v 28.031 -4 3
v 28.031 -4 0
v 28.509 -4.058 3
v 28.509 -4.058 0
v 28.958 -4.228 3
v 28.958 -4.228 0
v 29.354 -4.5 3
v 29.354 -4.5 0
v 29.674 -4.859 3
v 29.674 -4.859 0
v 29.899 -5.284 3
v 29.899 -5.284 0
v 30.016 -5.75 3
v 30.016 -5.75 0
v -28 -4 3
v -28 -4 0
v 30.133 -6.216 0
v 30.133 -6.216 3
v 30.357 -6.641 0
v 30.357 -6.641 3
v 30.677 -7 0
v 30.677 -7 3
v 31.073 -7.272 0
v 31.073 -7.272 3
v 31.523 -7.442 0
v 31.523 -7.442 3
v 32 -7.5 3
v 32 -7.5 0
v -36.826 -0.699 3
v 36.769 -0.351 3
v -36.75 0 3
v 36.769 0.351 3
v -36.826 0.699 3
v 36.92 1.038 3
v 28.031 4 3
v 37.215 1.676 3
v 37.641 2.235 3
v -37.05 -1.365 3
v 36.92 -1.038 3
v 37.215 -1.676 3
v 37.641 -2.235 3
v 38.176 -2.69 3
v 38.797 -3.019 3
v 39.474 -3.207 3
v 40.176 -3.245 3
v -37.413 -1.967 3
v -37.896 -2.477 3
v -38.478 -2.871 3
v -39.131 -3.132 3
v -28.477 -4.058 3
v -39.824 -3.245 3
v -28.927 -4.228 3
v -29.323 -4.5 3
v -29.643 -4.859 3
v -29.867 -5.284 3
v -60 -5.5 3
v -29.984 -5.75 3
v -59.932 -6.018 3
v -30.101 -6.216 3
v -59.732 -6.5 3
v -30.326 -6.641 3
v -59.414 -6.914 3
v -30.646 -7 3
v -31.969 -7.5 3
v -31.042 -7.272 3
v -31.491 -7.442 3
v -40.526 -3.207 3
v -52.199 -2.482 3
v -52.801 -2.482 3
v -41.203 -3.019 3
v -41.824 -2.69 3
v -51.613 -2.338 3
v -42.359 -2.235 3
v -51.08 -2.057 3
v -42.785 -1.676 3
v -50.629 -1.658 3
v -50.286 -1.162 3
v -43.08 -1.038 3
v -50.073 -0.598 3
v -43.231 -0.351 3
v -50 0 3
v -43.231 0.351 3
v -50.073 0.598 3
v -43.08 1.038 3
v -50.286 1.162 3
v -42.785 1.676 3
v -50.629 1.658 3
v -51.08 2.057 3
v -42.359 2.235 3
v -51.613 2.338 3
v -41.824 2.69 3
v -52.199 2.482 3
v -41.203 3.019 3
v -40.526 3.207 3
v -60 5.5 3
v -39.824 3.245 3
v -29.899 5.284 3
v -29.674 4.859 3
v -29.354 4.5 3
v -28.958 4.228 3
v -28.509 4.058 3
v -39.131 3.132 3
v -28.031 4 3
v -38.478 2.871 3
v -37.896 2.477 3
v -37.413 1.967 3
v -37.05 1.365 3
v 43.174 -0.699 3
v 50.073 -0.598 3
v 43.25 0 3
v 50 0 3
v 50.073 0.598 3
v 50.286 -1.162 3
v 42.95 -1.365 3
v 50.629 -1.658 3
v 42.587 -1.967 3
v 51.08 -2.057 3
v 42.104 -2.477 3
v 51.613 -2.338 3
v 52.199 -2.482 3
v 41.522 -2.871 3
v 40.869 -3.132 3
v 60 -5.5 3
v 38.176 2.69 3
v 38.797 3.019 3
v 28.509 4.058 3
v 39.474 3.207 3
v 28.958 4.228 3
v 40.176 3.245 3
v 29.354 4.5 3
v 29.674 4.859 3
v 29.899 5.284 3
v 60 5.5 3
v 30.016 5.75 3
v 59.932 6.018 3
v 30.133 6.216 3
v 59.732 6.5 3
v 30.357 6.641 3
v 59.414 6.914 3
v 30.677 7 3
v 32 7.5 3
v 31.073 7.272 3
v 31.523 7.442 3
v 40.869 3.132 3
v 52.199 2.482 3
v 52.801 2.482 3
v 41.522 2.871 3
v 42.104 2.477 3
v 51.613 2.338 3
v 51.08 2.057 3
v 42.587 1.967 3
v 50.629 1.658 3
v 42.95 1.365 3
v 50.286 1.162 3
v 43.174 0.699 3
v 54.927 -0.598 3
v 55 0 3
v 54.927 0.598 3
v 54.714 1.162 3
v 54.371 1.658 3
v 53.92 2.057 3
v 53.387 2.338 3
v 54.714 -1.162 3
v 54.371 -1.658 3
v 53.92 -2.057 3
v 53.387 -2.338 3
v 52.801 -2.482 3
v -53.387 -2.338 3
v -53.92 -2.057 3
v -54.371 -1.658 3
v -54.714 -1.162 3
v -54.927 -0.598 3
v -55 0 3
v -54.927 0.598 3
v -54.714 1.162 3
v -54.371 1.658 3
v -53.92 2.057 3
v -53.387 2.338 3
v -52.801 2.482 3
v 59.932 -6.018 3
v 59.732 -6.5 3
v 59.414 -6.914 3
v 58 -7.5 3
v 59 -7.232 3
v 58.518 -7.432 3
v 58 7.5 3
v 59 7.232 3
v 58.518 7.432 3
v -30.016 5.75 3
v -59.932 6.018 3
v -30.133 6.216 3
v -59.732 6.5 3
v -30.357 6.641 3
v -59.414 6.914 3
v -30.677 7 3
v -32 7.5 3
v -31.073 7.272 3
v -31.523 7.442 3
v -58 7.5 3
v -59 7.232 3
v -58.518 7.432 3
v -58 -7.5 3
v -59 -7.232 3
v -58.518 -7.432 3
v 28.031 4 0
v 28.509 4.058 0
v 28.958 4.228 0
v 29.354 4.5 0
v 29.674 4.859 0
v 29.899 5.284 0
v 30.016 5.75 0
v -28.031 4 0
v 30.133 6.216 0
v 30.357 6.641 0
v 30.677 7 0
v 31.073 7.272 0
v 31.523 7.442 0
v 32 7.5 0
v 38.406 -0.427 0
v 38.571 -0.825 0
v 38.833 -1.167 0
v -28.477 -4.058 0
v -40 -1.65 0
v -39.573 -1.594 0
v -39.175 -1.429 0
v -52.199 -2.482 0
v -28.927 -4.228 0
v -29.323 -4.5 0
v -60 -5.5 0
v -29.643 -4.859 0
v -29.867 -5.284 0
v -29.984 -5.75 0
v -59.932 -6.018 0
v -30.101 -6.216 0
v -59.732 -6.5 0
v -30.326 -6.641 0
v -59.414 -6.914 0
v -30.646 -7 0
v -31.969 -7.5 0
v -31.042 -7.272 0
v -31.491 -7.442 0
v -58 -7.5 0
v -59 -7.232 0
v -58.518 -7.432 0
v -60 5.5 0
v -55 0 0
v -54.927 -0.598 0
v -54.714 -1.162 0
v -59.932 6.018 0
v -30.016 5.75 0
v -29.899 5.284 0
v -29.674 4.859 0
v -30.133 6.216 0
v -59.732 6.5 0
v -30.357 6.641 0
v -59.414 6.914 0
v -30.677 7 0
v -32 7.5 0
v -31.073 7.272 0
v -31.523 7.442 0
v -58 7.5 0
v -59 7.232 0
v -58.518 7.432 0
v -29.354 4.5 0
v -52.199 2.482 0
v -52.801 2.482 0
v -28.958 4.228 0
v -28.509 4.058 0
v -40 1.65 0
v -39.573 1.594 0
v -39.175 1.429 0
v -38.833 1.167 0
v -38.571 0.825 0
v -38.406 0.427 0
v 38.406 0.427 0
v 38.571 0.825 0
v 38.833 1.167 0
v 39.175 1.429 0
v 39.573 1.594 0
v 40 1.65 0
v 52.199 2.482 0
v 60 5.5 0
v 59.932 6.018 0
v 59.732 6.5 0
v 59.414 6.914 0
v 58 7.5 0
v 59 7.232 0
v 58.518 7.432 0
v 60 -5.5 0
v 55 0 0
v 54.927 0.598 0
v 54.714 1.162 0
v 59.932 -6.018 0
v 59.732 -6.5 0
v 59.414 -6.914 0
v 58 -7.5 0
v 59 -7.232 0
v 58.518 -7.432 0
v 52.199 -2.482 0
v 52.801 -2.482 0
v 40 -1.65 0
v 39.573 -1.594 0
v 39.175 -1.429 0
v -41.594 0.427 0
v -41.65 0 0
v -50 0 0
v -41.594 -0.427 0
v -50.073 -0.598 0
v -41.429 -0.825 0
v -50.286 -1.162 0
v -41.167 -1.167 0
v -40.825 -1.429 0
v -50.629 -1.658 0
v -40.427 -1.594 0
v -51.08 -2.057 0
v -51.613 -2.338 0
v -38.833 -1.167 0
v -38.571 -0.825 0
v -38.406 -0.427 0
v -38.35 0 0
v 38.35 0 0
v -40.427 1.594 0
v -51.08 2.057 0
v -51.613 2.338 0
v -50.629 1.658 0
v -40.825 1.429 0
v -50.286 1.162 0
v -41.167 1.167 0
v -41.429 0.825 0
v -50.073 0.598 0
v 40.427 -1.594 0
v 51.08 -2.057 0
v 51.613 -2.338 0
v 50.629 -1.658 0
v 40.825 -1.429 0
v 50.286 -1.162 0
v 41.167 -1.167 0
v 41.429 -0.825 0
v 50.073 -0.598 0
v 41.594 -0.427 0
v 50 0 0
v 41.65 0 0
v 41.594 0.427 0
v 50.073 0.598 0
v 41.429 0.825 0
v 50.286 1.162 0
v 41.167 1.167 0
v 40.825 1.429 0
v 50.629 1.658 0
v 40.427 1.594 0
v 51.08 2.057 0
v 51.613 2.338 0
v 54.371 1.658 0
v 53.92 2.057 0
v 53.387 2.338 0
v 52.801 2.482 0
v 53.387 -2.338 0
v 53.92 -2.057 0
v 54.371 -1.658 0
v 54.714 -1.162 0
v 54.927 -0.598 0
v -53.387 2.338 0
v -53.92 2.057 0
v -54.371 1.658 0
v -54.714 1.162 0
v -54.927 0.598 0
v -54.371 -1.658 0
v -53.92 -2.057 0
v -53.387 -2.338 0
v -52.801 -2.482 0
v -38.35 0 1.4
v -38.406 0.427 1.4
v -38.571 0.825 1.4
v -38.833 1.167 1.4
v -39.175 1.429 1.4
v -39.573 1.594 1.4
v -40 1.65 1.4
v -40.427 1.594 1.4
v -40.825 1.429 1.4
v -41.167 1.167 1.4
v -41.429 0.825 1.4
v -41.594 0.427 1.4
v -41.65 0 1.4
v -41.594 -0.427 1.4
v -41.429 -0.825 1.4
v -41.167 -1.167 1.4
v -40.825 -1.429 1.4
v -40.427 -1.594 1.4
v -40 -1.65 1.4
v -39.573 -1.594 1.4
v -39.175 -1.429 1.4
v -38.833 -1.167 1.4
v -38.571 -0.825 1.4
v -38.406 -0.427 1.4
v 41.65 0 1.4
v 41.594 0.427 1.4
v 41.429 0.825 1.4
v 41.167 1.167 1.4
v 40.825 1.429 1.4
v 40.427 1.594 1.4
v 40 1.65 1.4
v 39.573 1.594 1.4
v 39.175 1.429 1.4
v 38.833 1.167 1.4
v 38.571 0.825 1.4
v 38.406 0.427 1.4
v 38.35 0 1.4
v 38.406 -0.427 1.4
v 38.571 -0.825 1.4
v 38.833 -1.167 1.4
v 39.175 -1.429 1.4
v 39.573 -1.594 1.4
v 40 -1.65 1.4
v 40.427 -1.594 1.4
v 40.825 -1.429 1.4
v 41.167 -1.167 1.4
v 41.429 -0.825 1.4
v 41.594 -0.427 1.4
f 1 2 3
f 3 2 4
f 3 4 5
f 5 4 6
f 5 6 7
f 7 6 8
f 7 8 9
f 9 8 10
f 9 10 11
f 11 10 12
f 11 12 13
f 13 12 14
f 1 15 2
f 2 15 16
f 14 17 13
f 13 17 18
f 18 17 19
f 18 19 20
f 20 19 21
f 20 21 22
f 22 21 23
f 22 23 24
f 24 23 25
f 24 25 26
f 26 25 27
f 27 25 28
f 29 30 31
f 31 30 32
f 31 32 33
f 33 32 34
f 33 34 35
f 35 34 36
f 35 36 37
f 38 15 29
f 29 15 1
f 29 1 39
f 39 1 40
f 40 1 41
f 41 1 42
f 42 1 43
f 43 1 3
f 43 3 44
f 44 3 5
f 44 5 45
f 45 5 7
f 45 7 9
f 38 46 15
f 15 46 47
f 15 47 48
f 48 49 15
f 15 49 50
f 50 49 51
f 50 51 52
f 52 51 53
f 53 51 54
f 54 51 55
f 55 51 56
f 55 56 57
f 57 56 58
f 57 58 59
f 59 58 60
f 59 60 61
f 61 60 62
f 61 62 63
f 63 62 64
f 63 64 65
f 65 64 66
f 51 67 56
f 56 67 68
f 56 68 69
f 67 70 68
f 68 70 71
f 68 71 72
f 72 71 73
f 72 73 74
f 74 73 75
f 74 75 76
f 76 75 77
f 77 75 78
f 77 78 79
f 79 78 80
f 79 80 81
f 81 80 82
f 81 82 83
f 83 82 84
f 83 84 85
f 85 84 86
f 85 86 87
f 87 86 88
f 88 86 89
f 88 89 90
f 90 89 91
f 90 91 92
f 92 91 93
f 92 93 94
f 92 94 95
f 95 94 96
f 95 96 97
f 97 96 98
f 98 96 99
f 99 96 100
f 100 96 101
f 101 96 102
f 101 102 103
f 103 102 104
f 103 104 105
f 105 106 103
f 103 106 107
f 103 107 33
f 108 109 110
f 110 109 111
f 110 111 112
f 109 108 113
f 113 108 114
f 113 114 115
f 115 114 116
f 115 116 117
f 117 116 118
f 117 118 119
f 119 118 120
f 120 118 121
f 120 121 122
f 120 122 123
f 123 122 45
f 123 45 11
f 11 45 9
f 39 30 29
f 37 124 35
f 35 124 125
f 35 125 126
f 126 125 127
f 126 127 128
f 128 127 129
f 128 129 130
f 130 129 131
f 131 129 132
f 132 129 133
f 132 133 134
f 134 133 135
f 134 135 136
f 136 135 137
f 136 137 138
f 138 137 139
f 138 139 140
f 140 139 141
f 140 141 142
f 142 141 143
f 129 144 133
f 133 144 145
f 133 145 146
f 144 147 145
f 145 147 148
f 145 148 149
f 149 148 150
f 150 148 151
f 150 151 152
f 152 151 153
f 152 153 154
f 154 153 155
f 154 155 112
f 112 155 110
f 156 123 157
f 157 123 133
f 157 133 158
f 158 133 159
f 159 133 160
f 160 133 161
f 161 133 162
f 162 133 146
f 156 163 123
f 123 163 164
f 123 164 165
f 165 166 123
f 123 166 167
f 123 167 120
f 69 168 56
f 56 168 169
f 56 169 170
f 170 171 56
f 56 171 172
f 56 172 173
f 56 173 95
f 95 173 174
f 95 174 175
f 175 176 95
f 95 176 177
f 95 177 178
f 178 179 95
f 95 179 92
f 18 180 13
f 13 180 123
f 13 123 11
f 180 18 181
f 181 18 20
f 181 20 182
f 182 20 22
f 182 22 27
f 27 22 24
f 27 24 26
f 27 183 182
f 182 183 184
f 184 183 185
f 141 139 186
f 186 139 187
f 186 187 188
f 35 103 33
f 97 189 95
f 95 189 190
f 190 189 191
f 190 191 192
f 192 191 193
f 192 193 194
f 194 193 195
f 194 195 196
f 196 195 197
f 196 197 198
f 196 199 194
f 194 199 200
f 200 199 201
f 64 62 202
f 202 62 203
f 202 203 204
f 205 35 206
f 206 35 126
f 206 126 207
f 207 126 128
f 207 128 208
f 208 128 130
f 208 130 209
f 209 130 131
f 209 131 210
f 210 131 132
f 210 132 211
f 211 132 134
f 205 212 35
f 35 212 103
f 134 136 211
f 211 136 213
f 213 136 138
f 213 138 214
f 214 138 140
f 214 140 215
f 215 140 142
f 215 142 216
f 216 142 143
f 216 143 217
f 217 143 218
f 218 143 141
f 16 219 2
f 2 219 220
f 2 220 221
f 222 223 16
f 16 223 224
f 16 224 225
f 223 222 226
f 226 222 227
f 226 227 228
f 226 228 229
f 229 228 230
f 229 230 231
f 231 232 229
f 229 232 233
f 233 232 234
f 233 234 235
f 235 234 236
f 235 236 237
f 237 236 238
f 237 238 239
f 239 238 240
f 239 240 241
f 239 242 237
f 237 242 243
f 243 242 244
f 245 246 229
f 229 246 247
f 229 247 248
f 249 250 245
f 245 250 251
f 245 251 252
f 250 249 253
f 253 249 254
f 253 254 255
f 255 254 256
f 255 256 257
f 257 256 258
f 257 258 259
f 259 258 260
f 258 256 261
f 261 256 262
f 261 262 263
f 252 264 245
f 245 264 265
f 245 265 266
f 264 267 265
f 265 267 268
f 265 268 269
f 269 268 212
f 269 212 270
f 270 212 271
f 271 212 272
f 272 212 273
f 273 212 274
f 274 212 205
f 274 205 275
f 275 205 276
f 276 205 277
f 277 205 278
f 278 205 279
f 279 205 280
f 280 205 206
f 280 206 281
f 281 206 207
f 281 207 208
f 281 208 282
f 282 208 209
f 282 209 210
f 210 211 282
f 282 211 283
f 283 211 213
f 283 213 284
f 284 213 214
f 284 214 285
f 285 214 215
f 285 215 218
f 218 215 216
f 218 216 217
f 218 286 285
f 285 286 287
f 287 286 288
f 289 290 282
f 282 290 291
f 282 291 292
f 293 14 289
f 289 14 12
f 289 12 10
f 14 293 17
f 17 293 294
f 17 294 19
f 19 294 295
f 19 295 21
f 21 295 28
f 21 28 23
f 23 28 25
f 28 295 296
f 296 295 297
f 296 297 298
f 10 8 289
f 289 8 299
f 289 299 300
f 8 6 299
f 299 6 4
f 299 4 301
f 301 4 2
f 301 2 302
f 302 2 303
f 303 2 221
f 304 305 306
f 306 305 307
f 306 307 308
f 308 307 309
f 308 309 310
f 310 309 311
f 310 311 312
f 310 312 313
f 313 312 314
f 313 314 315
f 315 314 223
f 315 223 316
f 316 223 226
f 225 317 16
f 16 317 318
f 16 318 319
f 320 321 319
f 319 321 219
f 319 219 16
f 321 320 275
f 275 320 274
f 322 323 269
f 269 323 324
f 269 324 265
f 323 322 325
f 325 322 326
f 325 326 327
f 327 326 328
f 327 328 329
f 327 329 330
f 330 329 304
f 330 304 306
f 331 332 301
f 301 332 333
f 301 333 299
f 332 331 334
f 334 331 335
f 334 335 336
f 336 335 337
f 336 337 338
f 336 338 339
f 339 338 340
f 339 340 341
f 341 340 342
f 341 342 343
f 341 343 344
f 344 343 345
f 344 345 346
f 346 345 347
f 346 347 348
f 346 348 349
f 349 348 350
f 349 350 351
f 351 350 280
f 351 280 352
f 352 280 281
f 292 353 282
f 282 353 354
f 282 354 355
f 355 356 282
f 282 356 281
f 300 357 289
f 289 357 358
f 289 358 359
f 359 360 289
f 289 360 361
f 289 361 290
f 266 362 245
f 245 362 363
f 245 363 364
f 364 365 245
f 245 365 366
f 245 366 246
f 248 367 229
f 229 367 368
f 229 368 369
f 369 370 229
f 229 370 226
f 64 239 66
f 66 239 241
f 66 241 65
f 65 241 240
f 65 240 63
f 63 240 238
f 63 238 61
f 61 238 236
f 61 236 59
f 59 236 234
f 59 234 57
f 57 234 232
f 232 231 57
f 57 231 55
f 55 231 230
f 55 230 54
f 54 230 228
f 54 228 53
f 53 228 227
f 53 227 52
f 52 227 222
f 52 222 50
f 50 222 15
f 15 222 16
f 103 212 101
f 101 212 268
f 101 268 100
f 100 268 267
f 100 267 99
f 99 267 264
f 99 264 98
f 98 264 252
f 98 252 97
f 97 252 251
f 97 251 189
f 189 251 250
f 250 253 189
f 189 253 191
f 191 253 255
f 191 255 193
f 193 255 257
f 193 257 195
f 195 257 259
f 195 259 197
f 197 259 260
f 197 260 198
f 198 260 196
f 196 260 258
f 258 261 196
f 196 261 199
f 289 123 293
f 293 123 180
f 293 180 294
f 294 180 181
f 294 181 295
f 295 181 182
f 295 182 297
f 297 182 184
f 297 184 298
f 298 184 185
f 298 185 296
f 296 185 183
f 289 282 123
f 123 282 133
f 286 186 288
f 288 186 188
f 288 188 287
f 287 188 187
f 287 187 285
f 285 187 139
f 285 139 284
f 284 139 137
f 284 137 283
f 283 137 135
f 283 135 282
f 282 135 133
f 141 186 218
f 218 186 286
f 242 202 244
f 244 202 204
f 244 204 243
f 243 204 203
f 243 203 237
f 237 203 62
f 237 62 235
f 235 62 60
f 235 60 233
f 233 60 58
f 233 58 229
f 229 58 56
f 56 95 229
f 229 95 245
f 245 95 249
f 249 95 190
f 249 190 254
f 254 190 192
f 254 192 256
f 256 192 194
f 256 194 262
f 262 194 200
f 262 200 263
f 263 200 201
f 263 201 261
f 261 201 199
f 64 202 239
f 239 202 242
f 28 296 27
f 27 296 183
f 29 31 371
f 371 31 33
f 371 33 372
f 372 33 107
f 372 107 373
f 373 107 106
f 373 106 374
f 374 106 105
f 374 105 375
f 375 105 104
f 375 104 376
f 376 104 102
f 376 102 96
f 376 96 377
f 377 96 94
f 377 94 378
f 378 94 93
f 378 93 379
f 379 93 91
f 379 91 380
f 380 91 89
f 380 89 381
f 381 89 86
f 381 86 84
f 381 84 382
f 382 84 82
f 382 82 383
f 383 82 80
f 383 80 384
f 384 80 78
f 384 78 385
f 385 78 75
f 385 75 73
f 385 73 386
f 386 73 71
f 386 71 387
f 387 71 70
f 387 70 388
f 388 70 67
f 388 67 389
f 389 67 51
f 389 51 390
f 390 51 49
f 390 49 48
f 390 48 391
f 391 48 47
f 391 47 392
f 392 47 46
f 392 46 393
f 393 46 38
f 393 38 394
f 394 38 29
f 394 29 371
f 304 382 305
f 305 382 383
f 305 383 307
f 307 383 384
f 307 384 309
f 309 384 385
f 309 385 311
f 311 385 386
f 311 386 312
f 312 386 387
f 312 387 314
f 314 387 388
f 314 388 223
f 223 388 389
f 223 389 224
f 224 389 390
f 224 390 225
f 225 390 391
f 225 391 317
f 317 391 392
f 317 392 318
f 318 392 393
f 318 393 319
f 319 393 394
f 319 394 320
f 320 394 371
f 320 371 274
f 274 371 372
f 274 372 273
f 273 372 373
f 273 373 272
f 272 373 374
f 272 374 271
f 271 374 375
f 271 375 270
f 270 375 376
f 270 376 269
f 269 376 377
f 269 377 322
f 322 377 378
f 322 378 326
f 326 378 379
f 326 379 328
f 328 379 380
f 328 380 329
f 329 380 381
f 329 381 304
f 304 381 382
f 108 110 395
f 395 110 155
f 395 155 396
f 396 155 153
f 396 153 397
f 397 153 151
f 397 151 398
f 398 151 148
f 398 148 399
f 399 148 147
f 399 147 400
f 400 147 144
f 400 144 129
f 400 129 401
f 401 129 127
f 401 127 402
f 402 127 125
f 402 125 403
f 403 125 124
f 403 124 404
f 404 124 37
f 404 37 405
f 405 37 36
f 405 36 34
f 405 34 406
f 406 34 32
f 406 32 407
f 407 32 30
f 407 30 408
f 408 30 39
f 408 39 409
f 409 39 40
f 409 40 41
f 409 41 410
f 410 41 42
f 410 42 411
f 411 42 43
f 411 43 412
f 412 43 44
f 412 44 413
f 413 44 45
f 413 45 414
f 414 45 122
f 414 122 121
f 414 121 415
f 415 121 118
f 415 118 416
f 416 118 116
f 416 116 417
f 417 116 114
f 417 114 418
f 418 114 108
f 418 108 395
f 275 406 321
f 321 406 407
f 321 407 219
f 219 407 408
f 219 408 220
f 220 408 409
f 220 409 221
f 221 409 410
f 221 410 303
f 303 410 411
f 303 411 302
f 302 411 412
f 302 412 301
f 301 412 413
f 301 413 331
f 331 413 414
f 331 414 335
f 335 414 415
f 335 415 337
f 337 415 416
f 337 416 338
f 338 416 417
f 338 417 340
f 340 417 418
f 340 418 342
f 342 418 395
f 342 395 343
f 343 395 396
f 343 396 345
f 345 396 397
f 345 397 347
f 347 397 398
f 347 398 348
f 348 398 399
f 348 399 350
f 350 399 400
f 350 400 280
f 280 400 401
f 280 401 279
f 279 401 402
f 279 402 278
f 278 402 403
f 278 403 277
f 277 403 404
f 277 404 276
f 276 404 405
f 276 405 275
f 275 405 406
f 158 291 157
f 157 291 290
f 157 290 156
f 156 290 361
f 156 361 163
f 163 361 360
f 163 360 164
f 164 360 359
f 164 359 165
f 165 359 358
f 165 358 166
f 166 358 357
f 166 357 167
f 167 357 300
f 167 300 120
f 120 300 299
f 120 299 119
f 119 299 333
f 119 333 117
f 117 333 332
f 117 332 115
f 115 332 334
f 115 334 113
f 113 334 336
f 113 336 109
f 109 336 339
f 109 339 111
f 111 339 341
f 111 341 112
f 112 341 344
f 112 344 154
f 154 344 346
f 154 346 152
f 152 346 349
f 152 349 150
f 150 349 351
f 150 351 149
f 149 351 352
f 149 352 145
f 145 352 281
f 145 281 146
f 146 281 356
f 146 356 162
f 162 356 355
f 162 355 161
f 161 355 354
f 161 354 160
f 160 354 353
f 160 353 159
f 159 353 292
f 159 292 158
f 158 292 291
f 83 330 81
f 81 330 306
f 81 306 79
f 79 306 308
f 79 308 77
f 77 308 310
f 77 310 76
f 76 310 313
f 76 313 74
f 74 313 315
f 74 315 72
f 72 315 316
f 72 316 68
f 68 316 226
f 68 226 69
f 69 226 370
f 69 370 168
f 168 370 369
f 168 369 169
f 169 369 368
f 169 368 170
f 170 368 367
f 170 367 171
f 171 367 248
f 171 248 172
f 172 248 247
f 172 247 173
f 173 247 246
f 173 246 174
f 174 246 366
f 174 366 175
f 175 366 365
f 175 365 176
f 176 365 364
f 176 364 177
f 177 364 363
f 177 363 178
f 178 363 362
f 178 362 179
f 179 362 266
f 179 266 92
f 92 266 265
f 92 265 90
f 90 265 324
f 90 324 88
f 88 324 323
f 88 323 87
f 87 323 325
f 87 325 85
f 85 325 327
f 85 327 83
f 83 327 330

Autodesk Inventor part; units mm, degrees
ref_plane "YZ Plane" through (0, 0, 0) normal (1, 0, 0) x (0, 1, 0)
ref_plane "XZ Plane" through (0, 0, 0) normal (0, 1, 0) x (-1, 0, 0)
sketch "Sketch1" plane through (0, 0, 0) normal (0, 0, 1) x (1, 0, 0)
  line L0 (-60, 7.5) -> (60, 7.5)
  line L1 (60, 7.5) -> (60, -7.5)
  line L2 (60, -7.5) -> (-60, -7.5)
  line L3 (-60, -7.5) -> (-60, 7.5)
  line L4 (-60, 7.5) -> (60, -7.5) construction
  line L5 (60, 7.5) -> (-60, -7.5) construction
  circle A0 centre (-52.5, 0) radius 2.5
  circle A1 centre (52.5, 0) radius 2.5
  point P0 (0, 0)
  point P1 (-60, 0)
  point P2 (60, 0)
  dimension "d0" = 120
  dimension "d1" = 15
  dimension "d2" = 5
  dimension "d3" = 7.5
  dimension "d4" = 7.5
extrude "Extrusion1" add sketch "Sketch1" along normal blind 3
sketch "Sketch2" plane through (0, 0, 3) normal (0, 0, 1) x (1, 0, 0)
  line L0 (-40, 0) -> (40, 0) construction
  point P0 (0, 0)
  point P1 (0, 0)
  dimension "d7" = 80
hole "Hole1" at (-40, 0, 3) at (40, 0, 3) direction (0, 0, -1) diameter 3.3 depth 36.25 countersink diameter 6.5 countersink angle 90
sketch "Sketch3" plane through (0, 0, 3) normal (0, 0, 1) x (1, 0, 0)
  line L0 (-30, 7.5) -> (30, 7.5)
  line L1 (30, 7.5) -> (30, 4)
  line L2 (30, 4) -> (-30, 4)
  line L3 (-30, 4) -> (-30, 7.5)
  circle A0 centre (-40, 0) radius 1.65 projected
  circle A1 centre (40, 0) radius 1.65 projected
  line L4 (60, 7.5) -> (-60, 7.5) projected
  point P0 (0, 0)
  dimension "d16" = 10
  dimension "d17" = 10
  dimension "d18" = 4
extrude "Extrusion2" cut sketch "Sketch3" against normal blind 3 contours L0 L1 L2 L3
ref_plane "Work Plane1" through (-60, 0, 3) normal (0, 1, 0) x (1, 0, 0)
mirror "Mirror1" about plane through (-60, 0, 3) normal (0, 1, 0) of "Extrusion2"
fillet "Fillet1" radius 2 12 edges at (-60, 7.5, 1.5) (-60, -7.5, 1.5) (60, 7.5, 1.5) (60, -7.5, 1.5) (-30, 7.5, 1.5) (-30, 4, 1.5) (-30, -4, 1.5) (-30, -7.5, 1.5) (30, 7.5, 1.5) (30, 4, 1.5) (30, -7.5, 1.5) (30, -4, 1.5)
equation "\"d4\" = d3"
equation "\"d17\" = d16"
properties part number "Power Supply Wall Mount v2"
